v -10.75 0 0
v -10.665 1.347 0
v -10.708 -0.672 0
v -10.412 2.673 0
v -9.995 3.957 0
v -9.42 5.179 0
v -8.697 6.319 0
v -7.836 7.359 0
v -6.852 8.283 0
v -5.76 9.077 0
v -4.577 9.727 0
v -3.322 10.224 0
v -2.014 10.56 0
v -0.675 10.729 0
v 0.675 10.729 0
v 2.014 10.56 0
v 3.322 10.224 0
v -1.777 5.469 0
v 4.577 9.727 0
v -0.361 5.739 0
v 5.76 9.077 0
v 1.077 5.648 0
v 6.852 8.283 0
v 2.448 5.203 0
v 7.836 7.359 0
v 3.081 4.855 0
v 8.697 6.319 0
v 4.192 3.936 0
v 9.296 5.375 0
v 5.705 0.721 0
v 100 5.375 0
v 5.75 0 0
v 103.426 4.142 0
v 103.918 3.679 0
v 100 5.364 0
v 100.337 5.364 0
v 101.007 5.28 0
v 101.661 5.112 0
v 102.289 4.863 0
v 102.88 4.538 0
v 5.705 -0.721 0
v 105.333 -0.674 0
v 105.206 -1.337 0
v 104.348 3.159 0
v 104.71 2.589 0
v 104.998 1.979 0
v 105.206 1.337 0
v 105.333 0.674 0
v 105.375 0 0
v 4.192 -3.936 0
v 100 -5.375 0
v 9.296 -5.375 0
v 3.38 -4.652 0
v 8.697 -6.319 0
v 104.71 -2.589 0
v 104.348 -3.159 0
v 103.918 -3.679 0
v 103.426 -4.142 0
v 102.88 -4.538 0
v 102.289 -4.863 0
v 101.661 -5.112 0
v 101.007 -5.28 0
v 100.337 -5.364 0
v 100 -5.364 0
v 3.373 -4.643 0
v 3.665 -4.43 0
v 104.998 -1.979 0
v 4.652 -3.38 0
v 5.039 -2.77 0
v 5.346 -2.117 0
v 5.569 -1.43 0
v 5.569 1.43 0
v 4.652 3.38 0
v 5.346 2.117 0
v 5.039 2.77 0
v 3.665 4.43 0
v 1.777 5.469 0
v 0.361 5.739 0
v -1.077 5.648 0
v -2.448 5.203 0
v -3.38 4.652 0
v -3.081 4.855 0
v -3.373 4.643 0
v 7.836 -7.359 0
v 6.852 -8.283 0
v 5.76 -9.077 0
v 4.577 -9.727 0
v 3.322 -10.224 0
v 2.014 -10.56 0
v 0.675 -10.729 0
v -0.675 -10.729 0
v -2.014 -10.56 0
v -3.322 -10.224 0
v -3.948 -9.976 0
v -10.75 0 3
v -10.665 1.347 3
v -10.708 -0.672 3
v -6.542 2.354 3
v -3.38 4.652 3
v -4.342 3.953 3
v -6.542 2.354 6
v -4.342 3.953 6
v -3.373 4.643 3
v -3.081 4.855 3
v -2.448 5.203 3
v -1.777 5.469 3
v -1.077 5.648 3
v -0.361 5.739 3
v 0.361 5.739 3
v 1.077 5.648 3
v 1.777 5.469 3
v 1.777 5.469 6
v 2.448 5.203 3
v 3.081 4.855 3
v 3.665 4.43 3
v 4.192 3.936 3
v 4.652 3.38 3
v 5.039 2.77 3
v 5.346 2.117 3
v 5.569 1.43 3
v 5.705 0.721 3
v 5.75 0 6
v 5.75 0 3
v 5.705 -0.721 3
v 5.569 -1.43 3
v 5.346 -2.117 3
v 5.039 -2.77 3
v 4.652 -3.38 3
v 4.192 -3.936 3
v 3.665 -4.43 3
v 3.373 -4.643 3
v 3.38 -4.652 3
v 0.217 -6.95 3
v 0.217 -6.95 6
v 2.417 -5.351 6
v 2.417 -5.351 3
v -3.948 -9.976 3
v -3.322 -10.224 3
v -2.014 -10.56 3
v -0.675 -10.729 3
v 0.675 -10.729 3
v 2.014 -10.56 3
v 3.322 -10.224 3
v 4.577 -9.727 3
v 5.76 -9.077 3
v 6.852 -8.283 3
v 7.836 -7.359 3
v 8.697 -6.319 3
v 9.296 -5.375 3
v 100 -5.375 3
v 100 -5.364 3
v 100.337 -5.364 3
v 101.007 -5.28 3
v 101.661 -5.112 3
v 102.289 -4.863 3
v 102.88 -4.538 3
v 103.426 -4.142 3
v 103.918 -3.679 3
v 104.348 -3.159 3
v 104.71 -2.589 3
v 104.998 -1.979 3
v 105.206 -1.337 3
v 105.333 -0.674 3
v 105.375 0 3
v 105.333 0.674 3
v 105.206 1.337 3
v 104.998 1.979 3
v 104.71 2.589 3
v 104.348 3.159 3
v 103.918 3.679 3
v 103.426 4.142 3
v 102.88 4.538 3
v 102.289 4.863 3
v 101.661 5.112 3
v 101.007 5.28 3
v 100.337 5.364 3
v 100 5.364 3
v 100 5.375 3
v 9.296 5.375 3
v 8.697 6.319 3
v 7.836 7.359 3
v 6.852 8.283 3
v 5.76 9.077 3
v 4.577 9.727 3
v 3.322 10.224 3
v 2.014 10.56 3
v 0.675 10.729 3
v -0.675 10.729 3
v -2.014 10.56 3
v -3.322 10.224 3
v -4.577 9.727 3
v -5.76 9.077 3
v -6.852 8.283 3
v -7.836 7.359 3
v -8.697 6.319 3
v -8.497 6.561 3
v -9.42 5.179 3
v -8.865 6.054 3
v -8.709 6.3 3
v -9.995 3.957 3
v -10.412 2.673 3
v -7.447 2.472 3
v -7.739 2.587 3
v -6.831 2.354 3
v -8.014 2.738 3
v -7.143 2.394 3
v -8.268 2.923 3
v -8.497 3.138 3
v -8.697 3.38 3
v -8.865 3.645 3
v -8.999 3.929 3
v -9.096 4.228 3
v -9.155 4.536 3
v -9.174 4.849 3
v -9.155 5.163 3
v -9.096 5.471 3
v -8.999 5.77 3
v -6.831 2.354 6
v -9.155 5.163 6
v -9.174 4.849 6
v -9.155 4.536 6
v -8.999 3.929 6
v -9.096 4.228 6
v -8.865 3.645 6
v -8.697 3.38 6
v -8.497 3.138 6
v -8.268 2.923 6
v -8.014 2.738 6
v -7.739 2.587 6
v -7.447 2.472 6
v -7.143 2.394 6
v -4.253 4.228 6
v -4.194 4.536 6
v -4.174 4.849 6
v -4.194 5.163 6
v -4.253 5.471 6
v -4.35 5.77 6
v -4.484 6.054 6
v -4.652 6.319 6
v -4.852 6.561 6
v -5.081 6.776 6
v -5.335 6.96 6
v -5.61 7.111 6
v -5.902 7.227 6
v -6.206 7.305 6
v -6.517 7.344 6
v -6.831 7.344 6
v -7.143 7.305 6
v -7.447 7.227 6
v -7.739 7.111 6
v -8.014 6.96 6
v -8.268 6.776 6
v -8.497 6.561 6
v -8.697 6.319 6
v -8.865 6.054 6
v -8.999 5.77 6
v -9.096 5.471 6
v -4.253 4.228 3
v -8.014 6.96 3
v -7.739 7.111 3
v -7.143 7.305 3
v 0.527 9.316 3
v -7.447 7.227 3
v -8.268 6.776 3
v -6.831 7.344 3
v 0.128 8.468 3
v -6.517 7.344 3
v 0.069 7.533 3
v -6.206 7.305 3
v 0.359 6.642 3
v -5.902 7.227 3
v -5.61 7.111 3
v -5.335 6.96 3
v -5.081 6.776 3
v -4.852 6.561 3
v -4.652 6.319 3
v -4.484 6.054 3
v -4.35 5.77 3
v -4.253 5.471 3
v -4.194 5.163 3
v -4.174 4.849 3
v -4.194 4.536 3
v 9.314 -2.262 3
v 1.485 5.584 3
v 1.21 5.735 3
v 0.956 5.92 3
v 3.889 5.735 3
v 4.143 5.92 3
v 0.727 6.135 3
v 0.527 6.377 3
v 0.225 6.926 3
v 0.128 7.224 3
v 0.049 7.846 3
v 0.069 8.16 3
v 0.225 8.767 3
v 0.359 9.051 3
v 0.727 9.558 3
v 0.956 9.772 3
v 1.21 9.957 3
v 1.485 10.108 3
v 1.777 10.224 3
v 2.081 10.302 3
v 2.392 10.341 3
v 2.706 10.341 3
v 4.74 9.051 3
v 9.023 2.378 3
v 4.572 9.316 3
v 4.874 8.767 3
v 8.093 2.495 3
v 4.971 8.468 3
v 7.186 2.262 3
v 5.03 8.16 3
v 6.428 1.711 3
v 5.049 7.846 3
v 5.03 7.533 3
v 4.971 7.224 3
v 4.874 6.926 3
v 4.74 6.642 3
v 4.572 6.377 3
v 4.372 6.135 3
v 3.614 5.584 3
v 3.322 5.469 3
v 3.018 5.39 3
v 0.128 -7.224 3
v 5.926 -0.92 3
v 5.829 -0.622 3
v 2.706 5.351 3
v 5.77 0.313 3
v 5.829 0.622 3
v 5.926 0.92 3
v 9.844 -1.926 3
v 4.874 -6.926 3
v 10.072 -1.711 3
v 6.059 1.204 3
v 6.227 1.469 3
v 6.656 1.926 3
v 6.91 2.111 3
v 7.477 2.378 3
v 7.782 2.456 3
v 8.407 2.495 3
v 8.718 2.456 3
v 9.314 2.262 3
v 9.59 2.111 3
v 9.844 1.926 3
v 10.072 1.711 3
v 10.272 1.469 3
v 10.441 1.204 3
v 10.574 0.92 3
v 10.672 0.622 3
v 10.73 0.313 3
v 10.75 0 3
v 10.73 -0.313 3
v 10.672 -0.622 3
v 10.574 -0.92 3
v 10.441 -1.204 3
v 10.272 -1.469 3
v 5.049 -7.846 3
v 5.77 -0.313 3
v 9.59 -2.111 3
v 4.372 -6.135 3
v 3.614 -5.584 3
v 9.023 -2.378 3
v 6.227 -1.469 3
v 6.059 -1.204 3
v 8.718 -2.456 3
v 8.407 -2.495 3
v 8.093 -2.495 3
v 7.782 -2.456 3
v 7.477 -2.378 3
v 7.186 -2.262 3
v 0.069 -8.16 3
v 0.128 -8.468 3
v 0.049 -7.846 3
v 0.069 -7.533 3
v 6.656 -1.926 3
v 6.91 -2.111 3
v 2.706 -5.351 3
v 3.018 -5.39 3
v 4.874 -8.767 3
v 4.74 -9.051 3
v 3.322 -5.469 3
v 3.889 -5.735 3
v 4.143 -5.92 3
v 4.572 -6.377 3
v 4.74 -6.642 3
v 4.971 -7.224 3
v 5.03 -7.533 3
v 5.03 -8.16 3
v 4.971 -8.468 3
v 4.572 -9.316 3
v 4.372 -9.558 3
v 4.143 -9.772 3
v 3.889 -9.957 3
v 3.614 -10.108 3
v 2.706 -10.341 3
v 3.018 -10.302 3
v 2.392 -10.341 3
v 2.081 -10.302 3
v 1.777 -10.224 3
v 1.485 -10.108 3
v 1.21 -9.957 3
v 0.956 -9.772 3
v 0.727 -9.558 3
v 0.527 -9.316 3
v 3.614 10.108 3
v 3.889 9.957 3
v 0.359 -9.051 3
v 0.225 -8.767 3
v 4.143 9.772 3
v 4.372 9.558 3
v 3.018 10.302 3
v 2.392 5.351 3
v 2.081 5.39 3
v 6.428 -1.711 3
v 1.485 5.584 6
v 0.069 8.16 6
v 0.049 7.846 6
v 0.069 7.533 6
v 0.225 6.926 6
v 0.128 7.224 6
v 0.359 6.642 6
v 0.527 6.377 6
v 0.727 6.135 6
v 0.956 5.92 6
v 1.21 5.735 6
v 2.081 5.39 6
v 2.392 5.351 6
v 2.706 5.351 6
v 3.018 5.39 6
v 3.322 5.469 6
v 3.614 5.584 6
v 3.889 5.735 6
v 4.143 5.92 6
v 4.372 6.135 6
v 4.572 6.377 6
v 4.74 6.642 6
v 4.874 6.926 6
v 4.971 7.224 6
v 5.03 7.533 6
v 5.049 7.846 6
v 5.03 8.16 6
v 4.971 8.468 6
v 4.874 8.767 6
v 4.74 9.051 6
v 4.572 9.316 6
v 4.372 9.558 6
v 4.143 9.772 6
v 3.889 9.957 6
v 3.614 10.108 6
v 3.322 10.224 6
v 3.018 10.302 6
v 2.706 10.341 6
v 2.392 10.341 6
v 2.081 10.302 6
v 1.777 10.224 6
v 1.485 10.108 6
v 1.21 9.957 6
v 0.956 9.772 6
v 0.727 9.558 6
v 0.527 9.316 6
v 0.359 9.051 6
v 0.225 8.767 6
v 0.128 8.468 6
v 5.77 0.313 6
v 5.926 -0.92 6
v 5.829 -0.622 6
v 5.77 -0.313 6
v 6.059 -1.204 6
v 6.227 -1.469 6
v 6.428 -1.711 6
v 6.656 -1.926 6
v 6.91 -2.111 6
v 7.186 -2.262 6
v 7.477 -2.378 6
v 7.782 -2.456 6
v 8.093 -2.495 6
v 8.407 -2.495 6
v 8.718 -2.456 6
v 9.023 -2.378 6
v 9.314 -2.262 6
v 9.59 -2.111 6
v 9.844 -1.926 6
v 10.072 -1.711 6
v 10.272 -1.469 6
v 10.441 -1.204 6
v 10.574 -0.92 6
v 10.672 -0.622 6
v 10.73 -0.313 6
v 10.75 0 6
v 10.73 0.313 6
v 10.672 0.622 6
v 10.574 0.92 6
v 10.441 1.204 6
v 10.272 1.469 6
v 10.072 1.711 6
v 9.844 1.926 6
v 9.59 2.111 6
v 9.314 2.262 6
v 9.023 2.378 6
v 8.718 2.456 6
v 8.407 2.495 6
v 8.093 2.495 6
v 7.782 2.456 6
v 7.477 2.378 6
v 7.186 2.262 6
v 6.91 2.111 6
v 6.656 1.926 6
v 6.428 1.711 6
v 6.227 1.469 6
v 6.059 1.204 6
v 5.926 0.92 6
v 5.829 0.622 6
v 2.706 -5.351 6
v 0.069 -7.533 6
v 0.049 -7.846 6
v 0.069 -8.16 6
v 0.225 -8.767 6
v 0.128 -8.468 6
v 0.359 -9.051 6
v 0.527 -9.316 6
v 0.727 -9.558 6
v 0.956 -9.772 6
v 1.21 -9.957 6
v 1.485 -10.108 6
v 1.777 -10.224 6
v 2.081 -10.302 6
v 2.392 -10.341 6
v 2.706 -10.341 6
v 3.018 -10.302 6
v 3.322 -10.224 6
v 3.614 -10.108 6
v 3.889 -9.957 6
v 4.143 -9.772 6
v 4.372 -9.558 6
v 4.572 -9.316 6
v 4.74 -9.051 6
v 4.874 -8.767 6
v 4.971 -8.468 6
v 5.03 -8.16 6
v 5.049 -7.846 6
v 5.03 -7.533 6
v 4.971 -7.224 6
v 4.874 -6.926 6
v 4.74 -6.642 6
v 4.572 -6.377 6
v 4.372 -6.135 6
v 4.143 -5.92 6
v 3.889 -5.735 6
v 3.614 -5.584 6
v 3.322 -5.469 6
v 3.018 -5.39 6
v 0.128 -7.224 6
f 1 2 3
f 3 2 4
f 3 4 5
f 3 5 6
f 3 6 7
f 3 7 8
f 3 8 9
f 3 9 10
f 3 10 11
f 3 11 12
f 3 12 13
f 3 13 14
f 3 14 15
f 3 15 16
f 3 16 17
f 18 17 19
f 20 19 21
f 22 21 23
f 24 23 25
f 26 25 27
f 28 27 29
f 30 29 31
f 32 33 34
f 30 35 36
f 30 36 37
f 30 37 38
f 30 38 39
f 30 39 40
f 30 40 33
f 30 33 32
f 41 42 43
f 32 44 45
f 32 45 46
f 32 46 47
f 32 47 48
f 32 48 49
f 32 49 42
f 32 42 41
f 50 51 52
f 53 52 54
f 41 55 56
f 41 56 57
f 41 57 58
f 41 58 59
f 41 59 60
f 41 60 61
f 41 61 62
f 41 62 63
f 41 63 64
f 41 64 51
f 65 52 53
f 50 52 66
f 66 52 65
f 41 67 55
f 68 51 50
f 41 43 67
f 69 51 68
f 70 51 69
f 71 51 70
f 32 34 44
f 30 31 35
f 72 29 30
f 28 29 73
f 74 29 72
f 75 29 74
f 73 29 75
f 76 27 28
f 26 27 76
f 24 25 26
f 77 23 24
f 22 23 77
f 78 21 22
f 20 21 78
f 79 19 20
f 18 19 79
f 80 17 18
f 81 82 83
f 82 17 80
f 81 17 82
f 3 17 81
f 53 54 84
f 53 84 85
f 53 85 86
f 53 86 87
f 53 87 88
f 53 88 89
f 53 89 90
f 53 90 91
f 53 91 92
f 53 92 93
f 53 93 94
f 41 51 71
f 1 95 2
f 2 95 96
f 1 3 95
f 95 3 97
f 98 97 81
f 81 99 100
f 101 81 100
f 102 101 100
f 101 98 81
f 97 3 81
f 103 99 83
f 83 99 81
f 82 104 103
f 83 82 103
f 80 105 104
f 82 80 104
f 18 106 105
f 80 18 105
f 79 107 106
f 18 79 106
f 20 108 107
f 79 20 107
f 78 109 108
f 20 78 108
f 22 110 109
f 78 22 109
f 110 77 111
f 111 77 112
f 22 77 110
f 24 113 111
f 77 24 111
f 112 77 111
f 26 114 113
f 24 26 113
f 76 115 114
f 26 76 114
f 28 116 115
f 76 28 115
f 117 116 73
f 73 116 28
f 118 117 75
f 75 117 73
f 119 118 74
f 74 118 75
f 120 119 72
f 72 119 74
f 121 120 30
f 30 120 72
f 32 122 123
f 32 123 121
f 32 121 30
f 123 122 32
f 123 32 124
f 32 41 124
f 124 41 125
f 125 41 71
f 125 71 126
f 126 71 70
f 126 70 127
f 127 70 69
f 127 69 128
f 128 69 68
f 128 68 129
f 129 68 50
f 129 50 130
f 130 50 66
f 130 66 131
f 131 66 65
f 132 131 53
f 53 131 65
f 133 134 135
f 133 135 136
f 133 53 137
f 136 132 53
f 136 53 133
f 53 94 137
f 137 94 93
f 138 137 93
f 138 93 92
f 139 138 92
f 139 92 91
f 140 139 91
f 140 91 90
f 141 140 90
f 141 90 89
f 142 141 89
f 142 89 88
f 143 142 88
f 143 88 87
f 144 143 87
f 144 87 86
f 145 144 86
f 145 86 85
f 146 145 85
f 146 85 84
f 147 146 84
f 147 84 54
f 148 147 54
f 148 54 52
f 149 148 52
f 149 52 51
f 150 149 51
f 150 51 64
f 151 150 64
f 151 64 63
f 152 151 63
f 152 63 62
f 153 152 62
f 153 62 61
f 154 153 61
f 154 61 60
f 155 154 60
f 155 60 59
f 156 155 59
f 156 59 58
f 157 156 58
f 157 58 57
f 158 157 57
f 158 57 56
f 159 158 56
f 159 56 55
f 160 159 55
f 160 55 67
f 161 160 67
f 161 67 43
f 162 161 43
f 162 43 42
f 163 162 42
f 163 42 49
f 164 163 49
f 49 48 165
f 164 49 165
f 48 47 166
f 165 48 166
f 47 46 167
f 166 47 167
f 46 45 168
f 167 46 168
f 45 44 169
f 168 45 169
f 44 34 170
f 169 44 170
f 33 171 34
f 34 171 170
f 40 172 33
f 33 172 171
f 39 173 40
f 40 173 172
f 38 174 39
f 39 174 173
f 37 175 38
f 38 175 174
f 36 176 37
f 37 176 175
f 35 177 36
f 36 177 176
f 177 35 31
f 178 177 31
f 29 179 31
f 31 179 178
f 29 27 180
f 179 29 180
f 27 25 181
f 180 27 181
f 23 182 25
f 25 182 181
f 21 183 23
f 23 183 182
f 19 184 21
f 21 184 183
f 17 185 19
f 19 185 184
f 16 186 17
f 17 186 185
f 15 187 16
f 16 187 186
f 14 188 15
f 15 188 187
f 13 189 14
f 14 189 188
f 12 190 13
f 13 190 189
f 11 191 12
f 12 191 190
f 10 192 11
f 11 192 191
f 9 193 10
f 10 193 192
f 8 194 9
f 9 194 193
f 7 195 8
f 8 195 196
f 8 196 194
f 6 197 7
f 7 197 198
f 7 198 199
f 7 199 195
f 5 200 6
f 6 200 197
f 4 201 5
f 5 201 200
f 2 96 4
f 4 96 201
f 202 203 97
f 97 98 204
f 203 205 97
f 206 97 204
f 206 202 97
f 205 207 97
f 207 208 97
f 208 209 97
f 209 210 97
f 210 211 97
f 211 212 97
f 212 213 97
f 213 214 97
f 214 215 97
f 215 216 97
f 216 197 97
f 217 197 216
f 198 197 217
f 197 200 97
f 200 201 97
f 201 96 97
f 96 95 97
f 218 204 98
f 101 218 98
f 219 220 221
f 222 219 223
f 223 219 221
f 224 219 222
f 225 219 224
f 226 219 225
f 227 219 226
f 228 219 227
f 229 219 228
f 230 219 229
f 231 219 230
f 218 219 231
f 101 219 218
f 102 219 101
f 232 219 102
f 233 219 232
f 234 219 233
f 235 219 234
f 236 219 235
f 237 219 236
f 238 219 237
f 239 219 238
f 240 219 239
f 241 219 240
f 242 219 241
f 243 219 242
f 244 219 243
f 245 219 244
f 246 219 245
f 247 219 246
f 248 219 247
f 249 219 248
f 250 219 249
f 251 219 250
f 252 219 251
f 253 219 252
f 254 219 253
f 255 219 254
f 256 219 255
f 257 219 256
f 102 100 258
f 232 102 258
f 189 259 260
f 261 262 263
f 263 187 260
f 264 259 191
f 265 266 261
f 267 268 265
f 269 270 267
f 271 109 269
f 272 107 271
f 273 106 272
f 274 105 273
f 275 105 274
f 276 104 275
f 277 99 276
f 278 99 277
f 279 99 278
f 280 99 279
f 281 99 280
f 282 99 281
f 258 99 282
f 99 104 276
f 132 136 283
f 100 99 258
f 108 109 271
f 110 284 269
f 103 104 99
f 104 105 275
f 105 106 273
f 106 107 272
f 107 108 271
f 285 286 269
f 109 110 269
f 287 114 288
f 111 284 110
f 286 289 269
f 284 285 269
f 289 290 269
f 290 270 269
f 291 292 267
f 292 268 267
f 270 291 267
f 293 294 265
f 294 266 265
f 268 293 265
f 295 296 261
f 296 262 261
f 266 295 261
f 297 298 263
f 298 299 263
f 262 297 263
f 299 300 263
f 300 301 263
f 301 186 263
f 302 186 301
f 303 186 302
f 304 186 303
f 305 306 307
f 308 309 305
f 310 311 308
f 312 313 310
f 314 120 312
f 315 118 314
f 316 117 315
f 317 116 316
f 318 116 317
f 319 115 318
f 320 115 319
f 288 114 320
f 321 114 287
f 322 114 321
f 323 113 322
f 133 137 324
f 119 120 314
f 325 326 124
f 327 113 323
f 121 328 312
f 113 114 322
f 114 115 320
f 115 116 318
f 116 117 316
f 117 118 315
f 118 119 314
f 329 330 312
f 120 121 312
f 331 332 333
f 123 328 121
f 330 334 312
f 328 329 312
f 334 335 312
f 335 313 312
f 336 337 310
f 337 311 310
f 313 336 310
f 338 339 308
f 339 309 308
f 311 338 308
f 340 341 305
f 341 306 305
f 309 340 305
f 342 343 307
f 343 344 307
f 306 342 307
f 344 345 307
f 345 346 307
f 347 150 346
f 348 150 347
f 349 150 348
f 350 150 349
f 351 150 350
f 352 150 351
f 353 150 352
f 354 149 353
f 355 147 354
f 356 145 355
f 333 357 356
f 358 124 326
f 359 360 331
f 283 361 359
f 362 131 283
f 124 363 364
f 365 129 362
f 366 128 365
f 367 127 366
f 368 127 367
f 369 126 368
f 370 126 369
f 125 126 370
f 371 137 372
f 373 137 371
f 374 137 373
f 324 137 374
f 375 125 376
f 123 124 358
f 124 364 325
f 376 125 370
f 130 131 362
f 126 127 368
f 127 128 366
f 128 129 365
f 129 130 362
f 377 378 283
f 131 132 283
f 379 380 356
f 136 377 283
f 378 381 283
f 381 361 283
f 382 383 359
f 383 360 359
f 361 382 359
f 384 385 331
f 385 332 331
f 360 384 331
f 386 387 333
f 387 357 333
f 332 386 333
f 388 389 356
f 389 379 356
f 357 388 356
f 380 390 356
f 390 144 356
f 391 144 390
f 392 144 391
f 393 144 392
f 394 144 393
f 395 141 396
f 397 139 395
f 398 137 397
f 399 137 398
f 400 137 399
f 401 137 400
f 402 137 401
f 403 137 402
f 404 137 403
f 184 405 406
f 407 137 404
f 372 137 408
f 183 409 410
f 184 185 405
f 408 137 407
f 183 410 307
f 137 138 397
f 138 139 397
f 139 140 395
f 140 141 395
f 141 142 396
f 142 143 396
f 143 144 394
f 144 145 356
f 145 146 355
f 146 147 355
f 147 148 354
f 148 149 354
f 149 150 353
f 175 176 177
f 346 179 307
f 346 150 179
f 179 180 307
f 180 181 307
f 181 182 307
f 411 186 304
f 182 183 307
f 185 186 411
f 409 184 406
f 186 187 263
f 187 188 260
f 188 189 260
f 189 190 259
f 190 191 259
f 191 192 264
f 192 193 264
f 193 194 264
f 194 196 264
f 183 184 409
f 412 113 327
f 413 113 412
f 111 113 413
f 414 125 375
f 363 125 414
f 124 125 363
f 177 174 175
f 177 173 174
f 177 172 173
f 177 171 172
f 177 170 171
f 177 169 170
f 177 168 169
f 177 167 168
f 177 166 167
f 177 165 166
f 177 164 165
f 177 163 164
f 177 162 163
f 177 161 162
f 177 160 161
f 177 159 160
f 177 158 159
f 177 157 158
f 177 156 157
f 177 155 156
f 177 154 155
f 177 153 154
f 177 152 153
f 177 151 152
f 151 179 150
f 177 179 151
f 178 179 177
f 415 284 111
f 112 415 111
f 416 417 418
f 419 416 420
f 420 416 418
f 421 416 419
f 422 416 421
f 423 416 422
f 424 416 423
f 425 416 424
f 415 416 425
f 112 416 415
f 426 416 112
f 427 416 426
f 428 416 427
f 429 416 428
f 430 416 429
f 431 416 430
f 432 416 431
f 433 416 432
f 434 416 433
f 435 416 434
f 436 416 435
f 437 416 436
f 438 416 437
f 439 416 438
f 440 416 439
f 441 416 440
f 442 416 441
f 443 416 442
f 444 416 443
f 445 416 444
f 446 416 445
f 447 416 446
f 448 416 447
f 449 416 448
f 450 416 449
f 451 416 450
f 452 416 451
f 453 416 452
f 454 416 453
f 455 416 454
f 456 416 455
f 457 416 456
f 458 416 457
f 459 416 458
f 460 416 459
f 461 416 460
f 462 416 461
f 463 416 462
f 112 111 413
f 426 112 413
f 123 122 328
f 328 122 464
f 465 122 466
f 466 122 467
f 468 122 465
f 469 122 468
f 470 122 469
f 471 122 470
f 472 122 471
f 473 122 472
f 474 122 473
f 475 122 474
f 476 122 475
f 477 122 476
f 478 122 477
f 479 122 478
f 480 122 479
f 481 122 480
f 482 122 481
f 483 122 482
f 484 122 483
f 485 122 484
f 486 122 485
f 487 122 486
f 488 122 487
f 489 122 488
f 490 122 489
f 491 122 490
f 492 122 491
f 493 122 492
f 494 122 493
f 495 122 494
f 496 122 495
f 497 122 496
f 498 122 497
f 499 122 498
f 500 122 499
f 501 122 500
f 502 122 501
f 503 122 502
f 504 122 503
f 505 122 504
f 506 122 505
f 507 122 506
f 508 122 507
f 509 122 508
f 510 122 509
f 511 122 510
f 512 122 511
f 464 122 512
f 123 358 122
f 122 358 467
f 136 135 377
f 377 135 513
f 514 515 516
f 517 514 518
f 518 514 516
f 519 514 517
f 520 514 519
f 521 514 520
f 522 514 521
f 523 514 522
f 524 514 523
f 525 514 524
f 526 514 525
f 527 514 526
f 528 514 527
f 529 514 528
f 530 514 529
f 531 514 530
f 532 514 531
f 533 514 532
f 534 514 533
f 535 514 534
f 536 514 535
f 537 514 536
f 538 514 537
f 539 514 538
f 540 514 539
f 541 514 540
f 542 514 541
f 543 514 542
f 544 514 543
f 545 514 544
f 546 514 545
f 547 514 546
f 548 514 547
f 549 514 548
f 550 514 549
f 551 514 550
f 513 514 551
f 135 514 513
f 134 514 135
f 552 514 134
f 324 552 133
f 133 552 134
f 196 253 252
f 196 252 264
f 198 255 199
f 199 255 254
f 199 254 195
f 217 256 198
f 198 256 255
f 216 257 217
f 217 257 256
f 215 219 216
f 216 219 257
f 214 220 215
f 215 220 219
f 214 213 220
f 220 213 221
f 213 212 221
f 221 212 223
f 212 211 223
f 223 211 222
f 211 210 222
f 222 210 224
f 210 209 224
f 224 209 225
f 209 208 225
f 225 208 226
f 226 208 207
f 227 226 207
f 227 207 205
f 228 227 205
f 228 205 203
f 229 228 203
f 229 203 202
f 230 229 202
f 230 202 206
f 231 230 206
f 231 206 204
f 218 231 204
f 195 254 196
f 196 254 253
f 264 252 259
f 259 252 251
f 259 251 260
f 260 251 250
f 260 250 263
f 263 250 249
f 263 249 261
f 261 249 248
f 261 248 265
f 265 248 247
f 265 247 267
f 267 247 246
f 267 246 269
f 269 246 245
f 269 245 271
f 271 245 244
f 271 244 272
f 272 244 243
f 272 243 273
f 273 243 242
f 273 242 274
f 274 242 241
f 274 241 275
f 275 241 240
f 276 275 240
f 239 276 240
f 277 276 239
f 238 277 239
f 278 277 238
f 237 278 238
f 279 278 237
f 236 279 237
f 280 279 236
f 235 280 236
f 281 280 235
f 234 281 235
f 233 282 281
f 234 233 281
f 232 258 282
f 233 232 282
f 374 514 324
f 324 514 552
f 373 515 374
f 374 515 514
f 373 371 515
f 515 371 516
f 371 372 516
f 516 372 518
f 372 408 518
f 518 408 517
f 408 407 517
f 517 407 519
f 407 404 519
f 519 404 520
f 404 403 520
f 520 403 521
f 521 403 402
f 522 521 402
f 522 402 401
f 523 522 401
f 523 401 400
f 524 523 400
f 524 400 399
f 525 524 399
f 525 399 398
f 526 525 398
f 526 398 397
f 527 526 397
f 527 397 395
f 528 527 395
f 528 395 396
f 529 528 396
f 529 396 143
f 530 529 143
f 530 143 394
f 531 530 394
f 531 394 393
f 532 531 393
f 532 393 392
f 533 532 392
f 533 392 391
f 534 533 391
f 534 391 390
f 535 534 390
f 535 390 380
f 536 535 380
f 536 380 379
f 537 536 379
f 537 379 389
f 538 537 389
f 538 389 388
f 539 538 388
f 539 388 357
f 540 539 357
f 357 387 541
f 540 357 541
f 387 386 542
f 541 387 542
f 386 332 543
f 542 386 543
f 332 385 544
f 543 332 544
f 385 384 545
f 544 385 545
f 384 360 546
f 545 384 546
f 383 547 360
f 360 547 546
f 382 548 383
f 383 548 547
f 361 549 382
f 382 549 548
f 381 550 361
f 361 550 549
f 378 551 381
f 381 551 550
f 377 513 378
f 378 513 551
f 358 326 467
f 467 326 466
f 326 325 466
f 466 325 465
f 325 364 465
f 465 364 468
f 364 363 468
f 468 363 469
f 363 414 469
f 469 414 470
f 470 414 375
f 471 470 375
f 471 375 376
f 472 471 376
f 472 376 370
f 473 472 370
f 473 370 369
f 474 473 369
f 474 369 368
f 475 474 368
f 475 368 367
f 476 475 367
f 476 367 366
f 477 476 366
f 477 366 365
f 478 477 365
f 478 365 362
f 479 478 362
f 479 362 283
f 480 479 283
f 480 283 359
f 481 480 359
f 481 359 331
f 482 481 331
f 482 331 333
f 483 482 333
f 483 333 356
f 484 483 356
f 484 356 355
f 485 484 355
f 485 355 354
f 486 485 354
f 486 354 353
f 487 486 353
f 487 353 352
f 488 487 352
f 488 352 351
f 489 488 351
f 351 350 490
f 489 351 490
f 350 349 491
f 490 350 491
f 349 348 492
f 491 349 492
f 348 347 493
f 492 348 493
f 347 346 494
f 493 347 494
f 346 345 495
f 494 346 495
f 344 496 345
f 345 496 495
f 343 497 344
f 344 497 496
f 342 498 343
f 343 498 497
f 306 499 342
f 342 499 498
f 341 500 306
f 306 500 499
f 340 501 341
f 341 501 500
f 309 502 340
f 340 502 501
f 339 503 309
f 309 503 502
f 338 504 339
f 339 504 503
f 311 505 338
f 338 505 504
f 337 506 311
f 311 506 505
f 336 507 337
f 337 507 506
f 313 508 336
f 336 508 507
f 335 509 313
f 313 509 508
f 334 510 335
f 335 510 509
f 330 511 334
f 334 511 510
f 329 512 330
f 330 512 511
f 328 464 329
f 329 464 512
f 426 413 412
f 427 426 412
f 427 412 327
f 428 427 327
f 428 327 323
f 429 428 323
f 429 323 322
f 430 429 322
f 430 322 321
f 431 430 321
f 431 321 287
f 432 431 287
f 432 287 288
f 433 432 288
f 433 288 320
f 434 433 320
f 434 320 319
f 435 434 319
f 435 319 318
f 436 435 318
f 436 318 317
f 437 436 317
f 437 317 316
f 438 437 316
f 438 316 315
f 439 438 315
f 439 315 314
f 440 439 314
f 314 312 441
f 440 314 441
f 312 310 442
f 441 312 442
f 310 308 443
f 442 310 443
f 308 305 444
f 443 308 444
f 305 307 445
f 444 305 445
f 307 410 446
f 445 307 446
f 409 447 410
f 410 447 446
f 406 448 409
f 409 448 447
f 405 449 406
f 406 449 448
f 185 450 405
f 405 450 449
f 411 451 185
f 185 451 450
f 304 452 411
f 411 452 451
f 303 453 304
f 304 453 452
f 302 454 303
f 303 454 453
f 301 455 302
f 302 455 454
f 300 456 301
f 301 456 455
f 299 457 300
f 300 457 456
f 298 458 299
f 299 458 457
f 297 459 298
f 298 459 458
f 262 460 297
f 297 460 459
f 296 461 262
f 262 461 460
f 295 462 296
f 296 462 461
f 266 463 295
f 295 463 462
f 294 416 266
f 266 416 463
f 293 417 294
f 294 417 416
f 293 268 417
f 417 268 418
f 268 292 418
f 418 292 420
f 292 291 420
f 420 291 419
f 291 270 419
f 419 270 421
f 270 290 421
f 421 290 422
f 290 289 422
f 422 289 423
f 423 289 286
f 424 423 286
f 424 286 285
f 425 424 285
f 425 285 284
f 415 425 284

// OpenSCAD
//this is a tool to hold the motor on my 
//Hornet 460 quadcopter for changing props.

locatorHeight=3;
locatorDiameter=5;
motorShaftDiameter=11.5;
wallThickness=3;
handleLength=100;

$fn=50;
difference()
{
union()
{
//locators
translate([motorShaftDiameter/2+locatorDiameter/2,0,locatorHeight/2+wallThickness])
cylinder(locatorHeight,locatorDiameter/2,locatorDiameter/2,true);

rotate([0,0,72])
translate([motorShaftDiameter/2+locatorDiameter/2,0,locatorHeight/2+wallThickness])
cylinder(locatorHeight,locatorDiameter/2,locatorDiameter/2,true);

rotate([0,0,144])
translate([motorShaftDiameter/2+locatorDiameter/2,0,locatorHeight/2+wallThickness])
cylinder(locatorHeight,locatorDiameter/2,locatorDiameter/2,true);

rotate([0,0,216])
translate([motorShaftDiameter/2+locatorDiameter/2,0,locatorHeight/2+wallThickness])
cylinder(locatorHeight,locatorDiameter/2,locatorDiameter/2,true);

rotate([0,0,288])
translate([motorShaftDiameter/2+locatorDiameter/2,0,locatorHeight/2+wallThickness])
cylinder(locatorHeight,locatorDiameter/2,locatorDiameter/2,true);

//handle and round base
translate([0,0,wallThickness/2])
{
	cylinder(wallThickness,motorShaftDiameter/2+locatorDiameter,motorShaftDiameter/2+locatorDiameter,true);
	translate([handleLength/2,0,0])
	cube([handleLength,motorShaftDiameter/2+locatorDiameter,wallThickness],true);

//round end for spanner
	translate([handleLength,0,0])
	#cylinder(wallThickness,(motorShaftDiameter/2+locatorDiameter)/2,(motorShaftDiameter/2+locatorDiameter)/2,true);
}
}
//minuse slot so it can be put on motor shaft
rotate([0,0,72/2])
{
translate([0,0,(locatorHeight+wallThickness)/2])
{
	cylinder(locatorHeight+wallThickness,motorShaftDiameter/2,motorShaftDiameter/2,true);
	translate([-(motorShaftDiameter/2+locatorDiameter)/2,0,0])
	cube([motorShaftDiameter/2+locatorDiameter,motorShaftDiameter,locatorHeight+wallThickness],true);
}
}
}
